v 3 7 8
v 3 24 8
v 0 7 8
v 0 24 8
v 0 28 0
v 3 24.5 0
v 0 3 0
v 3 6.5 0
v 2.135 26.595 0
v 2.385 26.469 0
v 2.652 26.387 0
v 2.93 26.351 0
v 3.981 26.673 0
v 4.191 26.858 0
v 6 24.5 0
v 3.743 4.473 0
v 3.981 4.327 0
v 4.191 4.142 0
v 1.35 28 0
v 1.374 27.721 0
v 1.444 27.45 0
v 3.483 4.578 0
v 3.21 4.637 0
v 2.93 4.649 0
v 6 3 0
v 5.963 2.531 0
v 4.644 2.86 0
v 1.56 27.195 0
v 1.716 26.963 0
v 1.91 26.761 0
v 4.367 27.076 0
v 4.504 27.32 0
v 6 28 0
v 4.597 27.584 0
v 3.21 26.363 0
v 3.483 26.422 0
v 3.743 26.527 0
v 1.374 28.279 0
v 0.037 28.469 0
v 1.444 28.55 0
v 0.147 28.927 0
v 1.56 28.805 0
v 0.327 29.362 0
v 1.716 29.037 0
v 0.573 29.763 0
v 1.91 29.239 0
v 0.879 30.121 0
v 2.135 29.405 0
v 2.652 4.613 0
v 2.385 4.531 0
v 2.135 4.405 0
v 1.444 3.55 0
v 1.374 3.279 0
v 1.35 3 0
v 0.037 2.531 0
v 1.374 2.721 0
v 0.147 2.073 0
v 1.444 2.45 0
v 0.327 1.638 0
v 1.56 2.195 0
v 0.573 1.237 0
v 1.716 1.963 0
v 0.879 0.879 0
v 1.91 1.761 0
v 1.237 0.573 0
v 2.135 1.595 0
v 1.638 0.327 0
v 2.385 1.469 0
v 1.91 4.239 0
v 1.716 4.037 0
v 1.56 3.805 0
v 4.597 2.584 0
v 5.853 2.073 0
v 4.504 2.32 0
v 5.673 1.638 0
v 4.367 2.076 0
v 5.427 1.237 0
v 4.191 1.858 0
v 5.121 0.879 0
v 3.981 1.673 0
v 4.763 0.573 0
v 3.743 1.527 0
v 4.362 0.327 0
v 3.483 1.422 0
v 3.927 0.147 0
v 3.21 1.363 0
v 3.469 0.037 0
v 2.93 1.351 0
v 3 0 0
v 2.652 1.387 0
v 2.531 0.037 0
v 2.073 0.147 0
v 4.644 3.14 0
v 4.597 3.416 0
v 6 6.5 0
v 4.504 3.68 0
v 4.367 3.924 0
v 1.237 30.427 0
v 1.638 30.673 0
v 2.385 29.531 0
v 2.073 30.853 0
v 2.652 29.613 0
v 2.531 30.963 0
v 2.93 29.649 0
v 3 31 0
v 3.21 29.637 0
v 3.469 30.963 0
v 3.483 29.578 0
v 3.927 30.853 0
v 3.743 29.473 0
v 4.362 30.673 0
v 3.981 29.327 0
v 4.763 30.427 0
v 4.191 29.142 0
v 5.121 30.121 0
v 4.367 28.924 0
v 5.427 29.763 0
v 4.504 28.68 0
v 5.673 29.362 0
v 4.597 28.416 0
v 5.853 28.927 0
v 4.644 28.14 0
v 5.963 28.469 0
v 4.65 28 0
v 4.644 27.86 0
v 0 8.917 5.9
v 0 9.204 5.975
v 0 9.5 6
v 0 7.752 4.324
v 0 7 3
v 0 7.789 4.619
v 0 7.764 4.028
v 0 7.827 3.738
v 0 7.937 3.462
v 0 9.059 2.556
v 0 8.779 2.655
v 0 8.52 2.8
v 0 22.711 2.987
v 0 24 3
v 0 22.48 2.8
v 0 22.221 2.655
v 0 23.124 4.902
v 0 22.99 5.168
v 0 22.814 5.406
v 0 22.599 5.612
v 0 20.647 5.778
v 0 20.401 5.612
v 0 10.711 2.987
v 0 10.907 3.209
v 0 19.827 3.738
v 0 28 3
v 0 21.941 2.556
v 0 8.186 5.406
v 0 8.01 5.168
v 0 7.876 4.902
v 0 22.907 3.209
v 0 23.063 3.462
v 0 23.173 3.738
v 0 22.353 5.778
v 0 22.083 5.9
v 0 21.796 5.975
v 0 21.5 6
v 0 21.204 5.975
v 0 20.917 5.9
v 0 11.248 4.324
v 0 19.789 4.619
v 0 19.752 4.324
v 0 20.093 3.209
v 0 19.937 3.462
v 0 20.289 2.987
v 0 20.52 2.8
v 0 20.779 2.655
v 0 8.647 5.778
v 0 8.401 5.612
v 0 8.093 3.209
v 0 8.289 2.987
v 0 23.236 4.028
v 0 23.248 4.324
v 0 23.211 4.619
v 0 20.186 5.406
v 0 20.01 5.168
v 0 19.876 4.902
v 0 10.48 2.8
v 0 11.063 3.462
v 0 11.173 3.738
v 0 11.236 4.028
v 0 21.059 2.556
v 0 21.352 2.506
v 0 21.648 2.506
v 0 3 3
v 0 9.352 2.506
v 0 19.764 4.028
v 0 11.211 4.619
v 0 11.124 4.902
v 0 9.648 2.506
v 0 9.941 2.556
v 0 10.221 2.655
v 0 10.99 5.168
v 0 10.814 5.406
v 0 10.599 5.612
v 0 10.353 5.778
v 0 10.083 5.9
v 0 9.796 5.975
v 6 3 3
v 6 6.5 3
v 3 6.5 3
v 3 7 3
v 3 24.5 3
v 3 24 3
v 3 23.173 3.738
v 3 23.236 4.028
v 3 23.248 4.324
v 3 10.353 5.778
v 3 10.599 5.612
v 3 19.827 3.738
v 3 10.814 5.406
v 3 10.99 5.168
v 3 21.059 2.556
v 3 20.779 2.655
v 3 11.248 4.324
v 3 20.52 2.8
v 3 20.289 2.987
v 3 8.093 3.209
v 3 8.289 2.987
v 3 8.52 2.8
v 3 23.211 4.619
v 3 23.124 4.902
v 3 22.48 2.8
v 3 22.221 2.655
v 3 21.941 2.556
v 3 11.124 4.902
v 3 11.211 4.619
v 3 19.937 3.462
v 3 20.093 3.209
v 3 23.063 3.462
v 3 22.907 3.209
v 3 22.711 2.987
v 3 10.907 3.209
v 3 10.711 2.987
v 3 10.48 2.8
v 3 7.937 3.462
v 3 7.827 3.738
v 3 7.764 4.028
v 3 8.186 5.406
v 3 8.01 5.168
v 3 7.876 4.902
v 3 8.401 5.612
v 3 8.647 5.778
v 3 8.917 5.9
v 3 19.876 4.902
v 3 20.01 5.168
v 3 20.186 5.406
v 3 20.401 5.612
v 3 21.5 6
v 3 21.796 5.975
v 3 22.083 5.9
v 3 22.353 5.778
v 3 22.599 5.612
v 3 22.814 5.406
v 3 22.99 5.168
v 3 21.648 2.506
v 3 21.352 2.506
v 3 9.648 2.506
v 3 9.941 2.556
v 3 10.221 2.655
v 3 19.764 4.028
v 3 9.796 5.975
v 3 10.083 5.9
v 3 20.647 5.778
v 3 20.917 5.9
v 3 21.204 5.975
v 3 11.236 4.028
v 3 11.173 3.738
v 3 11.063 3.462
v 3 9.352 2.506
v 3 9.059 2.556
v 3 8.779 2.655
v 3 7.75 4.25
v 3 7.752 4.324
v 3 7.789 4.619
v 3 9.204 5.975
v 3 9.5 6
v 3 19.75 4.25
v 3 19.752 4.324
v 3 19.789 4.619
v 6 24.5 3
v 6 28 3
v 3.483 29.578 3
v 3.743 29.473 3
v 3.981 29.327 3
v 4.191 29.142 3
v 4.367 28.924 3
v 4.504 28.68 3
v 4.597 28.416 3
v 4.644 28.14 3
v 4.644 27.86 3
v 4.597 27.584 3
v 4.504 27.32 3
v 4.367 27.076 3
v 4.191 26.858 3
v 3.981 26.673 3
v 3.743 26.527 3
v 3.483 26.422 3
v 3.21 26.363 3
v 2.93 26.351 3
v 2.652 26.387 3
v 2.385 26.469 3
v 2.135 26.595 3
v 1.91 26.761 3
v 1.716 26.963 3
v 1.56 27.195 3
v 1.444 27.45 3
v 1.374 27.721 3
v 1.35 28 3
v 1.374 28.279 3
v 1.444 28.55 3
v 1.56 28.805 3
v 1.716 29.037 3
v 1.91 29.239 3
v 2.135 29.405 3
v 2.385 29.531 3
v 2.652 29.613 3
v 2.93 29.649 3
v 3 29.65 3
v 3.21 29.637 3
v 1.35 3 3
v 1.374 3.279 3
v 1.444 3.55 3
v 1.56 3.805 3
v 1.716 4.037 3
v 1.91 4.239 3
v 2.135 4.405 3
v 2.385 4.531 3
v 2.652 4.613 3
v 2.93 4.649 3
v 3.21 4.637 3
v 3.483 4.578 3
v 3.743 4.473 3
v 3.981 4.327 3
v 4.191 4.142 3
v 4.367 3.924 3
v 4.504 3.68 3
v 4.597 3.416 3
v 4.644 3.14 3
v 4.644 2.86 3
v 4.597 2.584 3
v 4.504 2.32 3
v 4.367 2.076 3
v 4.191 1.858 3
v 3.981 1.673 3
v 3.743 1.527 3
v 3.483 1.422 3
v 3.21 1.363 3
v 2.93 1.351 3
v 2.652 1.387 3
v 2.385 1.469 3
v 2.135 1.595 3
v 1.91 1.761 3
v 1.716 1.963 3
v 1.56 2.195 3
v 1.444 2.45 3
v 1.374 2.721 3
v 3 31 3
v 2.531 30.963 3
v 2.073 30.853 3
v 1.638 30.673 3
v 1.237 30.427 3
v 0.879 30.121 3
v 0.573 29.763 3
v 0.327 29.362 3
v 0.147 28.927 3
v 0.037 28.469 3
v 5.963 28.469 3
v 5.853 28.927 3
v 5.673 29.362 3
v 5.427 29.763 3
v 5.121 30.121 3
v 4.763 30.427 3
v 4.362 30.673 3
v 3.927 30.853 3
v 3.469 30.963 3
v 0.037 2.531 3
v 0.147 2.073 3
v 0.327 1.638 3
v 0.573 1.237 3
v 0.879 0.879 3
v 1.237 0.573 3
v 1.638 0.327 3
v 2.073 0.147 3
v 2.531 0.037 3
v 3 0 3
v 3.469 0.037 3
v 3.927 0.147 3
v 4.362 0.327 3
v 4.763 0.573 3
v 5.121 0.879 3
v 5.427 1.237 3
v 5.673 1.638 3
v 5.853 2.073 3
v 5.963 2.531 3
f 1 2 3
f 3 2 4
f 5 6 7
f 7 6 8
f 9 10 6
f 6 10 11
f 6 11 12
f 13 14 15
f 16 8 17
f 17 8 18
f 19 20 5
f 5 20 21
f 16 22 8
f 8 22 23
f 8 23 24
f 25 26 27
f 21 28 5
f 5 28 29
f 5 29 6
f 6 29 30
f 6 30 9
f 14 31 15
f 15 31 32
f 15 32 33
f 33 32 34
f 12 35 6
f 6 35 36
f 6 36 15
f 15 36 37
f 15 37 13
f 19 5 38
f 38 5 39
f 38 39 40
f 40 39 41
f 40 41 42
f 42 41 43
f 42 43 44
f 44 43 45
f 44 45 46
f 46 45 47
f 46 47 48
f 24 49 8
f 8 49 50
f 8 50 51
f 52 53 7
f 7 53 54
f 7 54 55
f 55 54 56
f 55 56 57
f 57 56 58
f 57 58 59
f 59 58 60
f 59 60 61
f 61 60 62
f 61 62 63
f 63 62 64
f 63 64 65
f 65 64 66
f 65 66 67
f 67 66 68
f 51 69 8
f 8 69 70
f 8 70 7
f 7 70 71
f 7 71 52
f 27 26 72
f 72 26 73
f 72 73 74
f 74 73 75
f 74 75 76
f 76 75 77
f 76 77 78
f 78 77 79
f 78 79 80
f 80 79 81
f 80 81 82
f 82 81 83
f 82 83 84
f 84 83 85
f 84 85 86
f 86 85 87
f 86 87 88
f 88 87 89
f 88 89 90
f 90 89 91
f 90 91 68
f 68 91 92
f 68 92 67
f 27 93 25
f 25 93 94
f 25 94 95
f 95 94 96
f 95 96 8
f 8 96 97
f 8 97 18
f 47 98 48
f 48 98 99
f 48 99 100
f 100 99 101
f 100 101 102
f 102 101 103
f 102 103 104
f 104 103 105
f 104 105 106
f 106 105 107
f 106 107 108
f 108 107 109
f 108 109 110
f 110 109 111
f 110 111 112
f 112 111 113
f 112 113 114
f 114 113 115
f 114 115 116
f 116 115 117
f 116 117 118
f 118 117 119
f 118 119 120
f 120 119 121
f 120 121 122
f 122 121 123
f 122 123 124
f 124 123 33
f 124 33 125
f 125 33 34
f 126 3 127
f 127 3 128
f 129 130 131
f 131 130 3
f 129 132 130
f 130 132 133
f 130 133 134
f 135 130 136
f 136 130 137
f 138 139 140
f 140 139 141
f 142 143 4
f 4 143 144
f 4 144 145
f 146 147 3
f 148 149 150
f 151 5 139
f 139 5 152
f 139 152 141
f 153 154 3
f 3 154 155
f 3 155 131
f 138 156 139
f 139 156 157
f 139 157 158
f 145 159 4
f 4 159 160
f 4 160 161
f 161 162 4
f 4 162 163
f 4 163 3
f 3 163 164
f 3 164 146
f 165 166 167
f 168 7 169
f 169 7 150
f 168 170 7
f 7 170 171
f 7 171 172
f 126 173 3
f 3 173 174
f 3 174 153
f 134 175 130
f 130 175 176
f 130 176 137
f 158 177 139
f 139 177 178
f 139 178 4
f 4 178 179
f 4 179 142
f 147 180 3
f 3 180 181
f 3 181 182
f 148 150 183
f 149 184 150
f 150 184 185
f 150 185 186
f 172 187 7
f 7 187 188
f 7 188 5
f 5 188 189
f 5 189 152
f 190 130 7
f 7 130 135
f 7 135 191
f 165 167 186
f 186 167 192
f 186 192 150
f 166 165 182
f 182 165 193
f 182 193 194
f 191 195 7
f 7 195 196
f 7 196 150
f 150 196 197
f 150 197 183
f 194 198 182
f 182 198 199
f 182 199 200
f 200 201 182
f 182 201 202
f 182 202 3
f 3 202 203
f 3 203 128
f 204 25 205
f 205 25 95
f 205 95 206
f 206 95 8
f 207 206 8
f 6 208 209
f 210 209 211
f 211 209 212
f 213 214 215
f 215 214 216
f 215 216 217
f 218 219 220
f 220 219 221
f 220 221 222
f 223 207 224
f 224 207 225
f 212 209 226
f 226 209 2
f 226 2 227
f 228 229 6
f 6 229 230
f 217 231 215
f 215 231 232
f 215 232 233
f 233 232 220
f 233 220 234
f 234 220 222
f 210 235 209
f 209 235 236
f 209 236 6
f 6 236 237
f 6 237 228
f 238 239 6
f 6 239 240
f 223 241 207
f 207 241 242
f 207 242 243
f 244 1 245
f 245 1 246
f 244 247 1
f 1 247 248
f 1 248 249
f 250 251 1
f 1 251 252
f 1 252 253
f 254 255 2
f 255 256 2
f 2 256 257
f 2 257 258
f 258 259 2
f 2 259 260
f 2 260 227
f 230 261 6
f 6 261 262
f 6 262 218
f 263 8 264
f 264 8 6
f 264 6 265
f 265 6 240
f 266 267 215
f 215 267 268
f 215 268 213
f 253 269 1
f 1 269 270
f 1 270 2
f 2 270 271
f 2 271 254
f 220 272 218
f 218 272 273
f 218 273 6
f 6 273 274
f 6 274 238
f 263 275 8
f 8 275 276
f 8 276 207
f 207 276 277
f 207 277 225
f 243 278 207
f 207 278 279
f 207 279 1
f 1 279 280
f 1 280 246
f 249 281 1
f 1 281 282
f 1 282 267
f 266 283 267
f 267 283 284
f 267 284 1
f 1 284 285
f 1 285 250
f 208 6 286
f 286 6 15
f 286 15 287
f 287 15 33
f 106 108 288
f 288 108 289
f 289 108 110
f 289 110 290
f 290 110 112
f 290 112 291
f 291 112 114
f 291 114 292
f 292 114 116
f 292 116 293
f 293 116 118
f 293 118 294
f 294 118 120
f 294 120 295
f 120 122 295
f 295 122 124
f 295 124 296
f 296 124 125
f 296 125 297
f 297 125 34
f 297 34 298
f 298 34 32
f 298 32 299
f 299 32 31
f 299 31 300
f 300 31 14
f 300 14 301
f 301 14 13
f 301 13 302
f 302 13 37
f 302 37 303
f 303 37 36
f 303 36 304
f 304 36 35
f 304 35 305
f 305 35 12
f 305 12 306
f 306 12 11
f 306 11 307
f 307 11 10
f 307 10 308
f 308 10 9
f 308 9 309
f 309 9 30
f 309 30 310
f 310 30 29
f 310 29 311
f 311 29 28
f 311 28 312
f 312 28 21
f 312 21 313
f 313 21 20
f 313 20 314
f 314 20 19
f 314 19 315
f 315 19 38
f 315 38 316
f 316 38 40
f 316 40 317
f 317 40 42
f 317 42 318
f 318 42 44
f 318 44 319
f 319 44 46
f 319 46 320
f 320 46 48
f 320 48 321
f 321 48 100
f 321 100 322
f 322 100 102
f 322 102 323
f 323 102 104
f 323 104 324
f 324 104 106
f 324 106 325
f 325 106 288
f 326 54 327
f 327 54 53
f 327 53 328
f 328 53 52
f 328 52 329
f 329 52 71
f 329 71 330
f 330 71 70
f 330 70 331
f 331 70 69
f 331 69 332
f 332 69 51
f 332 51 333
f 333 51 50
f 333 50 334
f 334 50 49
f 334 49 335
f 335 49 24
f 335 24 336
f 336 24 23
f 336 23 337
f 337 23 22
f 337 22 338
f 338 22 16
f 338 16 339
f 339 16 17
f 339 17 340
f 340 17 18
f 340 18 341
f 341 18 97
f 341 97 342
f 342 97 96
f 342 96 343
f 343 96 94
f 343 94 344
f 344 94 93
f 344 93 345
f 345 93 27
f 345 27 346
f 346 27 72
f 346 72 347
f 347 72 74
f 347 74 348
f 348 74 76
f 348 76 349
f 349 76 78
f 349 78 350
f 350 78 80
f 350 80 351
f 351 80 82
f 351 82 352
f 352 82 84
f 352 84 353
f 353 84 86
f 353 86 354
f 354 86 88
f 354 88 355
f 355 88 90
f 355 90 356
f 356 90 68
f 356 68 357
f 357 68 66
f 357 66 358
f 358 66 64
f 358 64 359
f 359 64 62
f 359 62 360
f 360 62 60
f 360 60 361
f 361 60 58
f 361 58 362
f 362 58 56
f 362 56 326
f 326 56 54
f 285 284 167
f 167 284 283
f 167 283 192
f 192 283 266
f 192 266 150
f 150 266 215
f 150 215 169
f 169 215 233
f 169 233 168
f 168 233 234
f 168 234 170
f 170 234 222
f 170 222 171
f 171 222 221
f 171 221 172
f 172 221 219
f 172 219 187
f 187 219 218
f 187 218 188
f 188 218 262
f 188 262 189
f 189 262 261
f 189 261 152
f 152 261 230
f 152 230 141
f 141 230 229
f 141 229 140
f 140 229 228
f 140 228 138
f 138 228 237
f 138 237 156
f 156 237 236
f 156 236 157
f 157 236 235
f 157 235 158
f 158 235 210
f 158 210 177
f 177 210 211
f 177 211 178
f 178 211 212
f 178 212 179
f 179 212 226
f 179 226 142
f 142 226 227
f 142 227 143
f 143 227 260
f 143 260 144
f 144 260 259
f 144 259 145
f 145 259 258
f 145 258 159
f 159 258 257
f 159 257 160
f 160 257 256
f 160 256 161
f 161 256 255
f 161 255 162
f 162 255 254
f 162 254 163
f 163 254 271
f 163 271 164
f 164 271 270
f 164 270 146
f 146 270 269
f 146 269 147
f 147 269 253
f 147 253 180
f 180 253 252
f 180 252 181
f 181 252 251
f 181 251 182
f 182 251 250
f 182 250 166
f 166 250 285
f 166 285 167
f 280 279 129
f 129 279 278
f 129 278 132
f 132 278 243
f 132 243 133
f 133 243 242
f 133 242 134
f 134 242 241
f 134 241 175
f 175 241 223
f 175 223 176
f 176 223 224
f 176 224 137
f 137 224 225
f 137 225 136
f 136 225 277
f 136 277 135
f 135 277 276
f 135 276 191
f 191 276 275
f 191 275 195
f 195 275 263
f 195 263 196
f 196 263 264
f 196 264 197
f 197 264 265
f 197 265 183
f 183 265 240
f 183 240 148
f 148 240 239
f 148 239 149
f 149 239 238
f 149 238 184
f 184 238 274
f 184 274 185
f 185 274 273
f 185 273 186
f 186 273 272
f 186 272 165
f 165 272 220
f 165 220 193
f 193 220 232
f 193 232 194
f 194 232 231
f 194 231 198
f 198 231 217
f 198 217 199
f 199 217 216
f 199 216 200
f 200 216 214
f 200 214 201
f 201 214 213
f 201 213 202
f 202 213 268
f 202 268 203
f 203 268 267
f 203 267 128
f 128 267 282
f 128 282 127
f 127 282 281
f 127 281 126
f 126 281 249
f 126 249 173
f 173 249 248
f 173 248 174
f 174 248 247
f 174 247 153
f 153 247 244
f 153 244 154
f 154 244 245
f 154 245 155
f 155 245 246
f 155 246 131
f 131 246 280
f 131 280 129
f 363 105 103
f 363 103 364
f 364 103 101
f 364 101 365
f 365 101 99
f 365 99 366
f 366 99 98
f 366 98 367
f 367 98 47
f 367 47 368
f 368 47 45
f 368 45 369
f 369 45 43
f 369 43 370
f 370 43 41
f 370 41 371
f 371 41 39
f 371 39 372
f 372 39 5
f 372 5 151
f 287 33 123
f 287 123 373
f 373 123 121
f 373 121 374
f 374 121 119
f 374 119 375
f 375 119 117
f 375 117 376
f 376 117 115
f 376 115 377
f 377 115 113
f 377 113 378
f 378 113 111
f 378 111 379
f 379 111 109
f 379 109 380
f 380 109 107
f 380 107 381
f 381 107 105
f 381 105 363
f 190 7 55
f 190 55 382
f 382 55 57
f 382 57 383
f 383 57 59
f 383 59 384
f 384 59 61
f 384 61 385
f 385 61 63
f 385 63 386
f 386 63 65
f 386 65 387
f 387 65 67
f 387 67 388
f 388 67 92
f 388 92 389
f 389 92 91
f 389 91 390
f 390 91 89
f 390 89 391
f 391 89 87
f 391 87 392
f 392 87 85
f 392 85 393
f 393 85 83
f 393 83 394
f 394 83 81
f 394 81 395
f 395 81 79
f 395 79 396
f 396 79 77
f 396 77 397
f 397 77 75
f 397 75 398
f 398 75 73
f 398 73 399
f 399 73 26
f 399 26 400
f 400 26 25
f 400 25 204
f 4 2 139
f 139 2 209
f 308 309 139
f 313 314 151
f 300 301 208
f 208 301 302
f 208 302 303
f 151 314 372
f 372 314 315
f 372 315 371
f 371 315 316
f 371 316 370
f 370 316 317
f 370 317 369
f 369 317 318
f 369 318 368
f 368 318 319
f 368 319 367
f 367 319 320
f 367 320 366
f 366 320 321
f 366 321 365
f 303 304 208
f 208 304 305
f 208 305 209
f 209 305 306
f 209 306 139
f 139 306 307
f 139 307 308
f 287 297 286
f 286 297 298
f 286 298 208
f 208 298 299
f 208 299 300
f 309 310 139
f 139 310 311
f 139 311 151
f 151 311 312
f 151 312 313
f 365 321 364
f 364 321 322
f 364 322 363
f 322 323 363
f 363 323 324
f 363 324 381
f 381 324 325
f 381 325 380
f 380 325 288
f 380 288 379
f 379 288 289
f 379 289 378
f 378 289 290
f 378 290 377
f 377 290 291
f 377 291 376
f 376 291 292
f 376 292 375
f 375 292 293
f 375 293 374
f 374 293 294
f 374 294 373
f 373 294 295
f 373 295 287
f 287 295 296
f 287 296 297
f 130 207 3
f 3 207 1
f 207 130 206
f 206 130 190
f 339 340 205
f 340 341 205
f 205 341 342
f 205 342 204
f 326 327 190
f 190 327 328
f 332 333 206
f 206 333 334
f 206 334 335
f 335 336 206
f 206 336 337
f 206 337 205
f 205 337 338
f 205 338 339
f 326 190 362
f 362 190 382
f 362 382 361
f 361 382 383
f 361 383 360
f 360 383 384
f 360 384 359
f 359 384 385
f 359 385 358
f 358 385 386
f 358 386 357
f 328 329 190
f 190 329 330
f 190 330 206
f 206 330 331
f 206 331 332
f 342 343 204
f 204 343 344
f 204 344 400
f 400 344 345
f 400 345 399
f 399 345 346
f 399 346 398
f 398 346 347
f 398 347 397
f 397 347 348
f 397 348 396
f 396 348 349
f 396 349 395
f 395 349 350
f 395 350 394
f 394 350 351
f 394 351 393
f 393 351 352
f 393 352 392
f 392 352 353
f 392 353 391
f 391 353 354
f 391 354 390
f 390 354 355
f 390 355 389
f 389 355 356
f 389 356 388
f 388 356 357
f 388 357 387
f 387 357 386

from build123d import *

# Parameters (mm, degrees)
ESQUISSE1_R             = 1.65
BOSS_EXTRU_1_DEPTH      = 8
ESQUISSE2_R             = 1.75
ENL_V_MAT_EXTRU_1_DEPTH = 33.57299495
CONG_1_R                = 3
ESQUISSE3_W             = 5
ESQUISSE3_H             = 7
ENL_V_MAT_EXTRU_2_DEPTH = 33.57299495


with BuildPart() as part:
    # Esquisse1 → Boss.-Extru.1 (new body)
    with BuildSketch(Plane.XY):
        Polygon((0, 0), (6, 0), (6, 6.5), (3, 6.5), (3, 24.5), (6, 24.5), (6, 31), (0, 31), align=None)
        with Locations((3, 28)):
            Circle(ESQUISSE1_R, mode=Mode.SUBTRACT)
        with Locations(Location((3, 3, 0), (0, 0, 180))):
            Circle(ESQUISSE1_R, mode=Mode.SUBTRACT)
    extrude(amount=BOSS_EXTRU_1_DEPTH)

    # Esquisse2 → Enlèv. mat.-Extru.1 (cut, through all)
    with BuildSketch(Plane.ZY):
        with Locations((4.25, 21.5)):
            Circle(ESQUISSE2_R)
        with Locations((4.25, 9.5)):
            Circle(ESQUISSE2_R)
    extrude(amount=-ENL_V_MAT_EXTRU_1_DEPTH, mode=Mode.SUBTRACT)

    # Congé1
    cong_1_edges = [part.edges().sort_by_distance(p)[0] for p in [
        (6, 0, 4),
        (0, 0, 4),
        (0, 31, 4),
        (6, 31, 4),
    ]]
    fillet(cong_1_edges, radius=CONG_1_R - 0.0001)  # a hair under: the kernel refuses the full size

    # Esquisse3 → Enlèv. mat.-Extru.2 (cut, through all)
    with BuildSketch(Plane.ZY):
        with Locations((5.5, 27.5)):
            Rectangle(ESQUISSE3_W, ESQUISSE3_H)
        with Locations((5.5, 3.5)):
            Rectangle(ESQUISSE3_W, ESQUISSE3_H)
    extrude(amount=-ENL_V_MAT_EXTRU_2_DEPTH, mode=Mode.SUBTRACT)


solid = part.part
